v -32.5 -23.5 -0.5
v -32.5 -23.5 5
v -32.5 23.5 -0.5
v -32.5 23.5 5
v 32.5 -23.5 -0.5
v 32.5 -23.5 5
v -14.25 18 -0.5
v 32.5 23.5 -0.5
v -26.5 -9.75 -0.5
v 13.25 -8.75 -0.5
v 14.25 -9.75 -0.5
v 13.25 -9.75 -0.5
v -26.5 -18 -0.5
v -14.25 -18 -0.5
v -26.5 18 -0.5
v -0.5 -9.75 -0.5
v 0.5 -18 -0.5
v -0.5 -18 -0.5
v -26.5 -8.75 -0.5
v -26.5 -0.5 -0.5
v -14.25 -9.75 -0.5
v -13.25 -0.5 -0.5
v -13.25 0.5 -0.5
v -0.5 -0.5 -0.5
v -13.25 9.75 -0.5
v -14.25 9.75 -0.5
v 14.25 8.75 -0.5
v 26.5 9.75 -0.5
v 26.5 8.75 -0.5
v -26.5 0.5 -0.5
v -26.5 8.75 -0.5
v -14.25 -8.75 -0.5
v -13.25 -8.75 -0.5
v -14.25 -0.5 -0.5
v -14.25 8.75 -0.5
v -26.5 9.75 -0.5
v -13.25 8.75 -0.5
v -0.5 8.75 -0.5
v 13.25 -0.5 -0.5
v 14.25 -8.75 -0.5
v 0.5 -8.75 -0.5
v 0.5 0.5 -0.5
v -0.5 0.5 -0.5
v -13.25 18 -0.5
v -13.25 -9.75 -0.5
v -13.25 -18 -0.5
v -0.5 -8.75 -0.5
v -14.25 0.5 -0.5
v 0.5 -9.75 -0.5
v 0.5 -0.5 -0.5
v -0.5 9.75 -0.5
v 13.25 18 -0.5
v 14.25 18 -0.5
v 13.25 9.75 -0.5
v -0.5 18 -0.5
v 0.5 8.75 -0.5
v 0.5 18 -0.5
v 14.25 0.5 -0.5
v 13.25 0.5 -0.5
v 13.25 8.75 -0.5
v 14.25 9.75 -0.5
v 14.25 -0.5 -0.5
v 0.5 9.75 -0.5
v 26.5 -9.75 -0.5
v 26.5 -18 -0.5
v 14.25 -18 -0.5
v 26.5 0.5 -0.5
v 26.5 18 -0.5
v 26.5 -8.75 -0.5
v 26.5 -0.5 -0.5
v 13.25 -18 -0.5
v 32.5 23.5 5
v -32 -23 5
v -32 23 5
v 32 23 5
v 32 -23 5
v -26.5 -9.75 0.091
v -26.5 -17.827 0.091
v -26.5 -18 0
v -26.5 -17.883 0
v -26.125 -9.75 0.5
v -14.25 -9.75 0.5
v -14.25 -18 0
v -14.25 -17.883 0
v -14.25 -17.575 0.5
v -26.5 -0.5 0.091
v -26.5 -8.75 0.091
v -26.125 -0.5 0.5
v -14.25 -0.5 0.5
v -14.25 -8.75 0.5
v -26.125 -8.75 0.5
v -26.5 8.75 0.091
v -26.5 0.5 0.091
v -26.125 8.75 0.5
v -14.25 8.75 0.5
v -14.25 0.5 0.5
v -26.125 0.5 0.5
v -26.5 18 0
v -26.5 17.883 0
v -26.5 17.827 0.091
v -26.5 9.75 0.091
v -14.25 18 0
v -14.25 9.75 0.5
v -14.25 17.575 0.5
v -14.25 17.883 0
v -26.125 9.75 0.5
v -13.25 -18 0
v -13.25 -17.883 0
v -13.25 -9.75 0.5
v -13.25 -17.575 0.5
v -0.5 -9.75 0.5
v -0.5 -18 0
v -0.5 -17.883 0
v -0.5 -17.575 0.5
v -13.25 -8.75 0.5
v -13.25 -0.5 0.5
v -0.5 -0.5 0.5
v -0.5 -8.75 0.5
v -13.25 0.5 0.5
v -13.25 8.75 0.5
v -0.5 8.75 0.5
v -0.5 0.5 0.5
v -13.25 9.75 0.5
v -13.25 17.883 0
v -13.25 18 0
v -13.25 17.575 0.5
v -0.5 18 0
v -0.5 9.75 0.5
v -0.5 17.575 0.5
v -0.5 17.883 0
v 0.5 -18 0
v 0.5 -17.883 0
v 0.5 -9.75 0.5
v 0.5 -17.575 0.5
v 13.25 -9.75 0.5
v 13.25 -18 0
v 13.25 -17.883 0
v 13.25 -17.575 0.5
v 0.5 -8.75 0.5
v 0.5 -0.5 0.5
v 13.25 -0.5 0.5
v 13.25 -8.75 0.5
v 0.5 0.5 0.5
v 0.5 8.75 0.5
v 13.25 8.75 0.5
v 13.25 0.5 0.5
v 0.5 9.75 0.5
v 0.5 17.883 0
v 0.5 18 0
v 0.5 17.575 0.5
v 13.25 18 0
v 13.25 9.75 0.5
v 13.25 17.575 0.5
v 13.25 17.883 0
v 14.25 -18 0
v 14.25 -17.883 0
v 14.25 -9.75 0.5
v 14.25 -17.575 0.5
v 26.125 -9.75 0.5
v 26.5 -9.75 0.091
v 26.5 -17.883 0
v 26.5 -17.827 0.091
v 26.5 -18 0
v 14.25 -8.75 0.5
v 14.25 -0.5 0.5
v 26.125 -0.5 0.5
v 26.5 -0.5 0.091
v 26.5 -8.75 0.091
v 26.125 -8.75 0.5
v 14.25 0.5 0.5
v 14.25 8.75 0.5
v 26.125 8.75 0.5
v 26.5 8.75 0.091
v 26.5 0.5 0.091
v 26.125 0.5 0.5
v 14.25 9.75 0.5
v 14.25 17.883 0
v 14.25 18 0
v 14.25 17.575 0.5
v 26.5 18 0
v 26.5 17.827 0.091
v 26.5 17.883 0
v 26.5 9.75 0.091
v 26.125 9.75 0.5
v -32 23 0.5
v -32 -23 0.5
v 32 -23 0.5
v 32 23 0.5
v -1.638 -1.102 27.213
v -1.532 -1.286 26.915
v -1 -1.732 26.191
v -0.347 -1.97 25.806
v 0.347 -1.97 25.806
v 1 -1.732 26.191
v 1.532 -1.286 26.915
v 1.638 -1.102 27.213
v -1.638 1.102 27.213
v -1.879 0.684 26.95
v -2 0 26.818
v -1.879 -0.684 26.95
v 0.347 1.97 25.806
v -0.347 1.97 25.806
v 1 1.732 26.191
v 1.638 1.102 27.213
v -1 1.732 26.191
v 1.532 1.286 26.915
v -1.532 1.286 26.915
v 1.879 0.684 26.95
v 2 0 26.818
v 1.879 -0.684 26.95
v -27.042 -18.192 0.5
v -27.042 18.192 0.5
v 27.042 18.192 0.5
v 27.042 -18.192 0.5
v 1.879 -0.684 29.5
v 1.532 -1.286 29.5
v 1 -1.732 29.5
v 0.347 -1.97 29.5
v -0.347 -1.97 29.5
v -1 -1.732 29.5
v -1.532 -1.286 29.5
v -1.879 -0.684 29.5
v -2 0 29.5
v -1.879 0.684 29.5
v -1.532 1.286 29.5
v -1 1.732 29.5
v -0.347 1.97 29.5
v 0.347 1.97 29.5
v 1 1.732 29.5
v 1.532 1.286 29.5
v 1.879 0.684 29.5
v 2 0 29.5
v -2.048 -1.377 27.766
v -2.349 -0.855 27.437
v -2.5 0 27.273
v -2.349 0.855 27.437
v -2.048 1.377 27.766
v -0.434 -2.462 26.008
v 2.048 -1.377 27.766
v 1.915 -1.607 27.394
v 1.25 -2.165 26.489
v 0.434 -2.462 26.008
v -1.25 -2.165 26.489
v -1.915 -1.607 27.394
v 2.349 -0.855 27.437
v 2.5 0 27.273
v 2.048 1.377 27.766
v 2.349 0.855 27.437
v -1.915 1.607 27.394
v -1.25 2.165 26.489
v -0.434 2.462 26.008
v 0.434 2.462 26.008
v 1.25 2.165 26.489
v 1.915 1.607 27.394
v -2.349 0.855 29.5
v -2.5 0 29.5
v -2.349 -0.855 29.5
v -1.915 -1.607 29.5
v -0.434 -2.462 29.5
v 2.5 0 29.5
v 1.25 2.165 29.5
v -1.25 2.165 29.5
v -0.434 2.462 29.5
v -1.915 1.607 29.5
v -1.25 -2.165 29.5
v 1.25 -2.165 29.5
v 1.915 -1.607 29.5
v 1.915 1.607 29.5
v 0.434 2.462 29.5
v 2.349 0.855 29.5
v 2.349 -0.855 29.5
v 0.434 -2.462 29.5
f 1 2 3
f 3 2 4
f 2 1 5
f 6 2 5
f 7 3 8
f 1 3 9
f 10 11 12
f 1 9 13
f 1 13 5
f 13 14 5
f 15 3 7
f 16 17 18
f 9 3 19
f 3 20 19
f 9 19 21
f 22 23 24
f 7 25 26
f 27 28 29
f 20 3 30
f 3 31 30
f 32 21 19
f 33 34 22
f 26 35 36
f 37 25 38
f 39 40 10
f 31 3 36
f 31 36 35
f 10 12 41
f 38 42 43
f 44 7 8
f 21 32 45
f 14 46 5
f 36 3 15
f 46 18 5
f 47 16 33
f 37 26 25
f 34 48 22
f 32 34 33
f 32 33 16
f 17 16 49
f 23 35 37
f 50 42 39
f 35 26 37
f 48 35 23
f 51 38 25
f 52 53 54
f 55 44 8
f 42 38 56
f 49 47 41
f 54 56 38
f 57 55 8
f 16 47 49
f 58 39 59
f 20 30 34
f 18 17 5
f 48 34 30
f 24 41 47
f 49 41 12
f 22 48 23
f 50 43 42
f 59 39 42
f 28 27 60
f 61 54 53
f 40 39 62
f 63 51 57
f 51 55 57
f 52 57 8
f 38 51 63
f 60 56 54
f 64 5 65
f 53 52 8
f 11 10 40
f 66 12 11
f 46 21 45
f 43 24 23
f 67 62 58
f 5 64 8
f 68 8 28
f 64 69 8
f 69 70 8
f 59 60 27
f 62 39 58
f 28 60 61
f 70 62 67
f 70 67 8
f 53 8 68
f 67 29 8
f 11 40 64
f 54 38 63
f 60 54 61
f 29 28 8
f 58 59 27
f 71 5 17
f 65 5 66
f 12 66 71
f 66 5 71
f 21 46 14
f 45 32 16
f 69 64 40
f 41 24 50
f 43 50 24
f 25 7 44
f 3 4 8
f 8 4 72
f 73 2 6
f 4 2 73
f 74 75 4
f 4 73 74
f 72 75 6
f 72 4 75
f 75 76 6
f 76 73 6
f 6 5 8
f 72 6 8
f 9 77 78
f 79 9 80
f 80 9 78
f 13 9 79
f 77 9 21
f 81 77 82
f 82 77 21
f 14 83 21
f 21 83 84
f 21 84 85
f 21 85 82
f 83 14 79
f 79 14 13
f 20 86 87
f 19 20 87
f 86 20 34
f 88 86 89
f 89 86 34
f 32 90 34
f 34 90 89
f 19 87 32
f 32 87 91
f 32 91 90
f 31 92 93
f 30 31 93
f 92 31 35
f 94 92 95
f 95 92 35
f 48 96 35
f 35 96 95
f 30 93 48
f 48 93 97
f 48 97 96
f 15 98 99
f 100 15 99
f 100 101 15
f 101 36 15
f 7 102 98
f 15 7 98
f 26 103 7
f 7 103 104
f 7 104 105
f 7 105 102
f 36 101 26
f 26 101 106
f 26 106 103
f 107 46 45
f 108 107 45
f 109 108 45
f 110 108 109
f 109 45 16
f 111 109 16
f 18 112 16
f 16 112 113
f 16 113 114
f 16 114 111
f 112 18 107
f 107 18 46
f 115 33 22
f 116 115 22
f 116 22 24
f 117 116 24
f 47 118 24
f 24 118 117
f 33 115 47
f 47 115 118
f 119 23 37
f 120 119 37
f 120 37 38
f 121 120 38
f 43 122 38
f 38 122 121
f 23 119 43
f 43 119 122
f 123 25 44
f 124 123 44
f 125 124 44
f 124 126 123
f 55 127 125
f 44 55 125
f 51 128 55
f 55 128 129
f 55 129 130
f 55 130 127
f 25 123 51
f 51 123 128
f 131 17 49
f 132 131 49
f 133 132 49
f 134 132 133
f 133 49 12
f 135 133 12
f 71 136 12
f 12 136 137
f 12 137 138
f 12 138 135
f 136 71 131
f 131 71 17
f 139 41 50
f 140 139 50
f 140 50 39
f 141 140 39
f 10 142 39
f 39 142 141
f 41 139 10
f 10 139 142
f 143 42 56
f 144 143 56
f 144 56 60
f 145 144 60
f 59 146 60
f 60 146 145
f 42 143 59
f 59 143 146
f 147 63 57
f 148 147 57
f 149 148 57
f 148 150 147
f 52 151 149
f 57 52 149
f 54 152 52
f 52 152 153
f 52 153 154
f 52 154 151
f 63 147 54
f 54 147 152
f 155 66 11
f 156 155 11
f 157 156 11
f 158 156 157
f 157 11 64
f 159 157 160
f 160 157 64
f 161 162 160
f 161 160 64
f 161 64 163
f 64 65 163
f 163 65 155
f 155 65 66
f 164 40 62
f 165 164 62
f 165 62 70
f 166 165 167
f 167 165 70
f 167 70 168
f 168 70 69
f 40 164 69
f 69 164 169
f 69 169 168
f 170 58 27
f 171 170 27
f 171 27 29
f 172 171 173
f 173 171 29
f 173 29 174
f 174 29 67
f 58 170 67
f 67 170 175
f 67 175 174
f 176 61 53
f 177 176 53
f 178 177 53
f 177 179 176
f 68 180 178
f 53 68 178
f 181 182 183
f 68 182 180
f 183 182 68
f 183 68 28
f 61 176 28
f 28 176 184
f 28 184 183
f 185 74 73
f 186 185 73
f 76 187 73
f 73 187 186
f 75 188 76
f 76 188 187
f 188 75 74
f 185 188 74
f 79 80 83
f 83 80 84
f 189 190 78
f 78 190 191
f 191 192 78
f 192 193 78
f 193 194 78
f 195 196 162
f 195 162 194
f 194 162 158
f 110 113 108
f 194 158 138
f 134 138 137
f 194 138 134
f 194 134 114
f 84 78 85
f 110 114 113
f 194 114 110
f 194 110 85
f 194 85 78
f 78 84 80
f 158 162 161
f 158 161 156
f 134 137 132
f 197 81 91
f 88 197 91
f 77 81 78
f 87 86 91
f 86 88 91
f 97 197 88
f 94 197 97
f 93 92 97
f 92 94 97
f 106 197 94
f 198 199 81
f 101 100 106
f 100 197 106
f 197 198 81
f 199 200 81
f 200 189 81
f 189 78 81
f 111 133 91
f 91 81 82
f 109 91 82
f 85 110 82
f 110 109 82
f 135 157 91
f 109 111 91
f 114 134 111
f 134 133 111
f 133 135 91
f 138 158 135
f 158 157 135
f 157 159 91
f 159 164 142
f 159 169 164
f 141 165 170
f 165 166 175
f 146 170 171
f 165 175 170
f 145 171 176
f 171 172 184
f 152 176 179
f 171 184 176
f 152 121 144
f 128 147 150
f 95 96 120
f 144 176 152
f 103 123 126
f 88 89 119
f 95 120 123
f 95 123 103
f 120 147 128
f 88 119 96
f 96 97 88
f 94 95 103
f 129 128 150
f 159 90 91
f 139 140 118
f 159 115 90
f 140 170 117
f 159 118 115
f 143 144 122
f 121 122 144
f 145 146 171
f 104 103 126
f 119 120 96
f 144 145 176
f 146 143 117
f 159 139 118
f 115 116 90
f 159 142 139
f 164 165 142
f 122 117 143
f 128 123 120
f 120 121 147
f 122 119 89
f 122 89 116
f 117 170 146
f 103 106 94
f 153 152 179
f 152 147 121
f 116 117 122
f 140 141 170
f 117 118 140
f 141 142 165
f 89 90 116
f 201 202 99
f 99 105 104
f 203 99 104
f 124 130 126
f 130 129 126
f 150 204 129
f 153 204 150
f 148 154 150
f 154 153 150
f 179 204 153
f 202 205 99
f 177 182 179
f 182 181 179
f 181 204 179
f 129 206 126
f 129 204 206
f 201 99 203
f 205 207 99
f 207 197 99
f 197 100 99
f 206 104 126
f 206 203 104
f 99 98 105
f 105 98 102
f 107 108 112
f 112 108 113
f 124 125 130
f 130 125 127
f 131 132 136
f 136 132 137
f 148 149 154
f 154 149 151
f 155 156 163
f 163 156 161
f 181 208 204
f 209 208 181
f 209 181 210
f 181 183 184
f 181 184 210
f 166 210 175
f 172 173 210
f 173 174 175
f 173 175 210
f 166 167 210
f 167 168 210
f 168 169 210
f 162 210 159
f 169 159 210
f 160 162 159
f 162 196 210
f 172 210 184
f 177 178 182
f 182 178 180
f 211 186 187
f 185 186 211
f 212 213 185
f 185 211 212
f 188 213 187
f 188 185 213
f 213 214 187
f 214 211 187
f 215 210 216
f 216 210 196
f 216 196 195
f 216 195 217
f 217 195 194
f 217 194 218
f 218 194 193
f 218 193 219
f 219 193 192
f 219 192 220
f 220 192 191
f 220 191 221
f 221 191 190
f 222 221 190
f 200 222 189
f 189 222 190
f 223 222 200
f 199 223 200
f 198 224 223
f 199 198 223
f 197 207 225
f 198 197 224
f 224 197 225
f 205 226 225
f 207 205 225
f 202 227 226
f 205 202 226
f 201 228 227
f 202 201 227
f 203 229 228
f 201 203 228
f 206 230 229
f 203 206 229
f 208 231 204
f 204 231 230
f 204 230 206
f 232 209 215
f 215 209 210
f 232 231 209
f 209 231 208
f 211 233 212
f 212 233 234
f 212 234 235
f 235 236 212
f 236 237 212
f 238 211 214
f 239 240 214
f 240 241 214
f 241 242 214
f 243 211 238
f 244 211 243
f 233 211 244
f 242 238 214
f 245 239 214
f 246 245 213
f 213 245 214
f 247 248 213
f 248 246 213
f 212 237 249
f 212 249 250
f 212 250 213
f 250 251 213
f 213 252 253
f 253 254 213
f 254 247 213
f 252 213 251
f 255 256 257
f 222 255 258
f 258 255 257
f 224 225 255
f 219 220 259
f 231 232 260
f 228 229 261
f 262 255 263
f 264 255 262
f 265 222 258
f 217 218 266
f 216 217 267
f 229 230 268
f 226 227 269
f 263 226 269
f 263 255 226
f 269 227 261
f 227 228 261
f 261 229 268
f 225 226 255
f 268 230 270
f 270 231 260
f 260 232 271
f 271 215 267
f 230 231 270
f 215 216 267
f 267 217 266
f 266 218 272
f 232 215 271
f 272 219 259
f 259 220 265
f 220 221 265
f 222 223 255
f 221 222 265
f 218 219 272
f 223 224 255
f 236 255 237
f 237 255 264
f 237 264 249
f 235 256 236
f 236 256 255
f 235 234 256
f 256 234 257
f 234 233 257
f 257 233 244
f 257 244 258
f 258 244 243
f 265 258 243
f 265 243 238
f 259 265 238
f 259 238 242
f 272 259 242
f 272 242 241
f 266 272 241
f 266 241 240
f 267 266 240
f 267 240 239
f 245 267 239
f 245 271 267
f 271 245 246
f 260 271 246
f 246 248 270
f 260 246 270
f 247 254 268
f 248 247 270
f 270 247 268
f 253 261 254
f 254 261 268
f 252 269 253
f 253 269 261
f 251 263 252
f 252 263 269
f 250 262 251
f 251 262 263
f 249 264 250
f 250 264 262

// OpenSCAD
$fn = 18;

module cone(length, width, height, funnel, edge)
{
	difference() {
		union() {
			polyhedron(
				points = [
					[length/2, width/2, 0],
					[length/2, -width/2, 0],
					[-length/2, -width/2, 0],
					[-length/2, width/2, 0],
					[0, 0, height]
				],
				triangles = [
					[3, 2, 1, 0],
					[1, 4, 0],
					[2, 4, 1],
					[3, 4, 2],
					[0, 4, 3]
				]
			);
			// Funnel part
			color("blue") translate([0, 0, height-funnel/2]) cylinder(r=funnel/2,h=funnel-1,center = true);
		}
		// Remove center of pyramide
		translate([0, 0, -1])
		polyhedron(
			points = [
				[length/2, width/2, 0],
				[length/2, -width/2, 0],
				[-length/2, -width/2, 0],
				[-length/2, width/2, 0],
				[0, 0, height]
			],
			triangles = [
				[3, 2, 1, 0],
				[1, 4, 0],
				[2, 4, 1],
				[3, 4, 2],
				[0, 4, 3]
			]
		);
		// Funnel part hole
		color("red") translate([0, 0, height-funnel/2]) cylinder(r=2,h=funnel+2,center = true);
	}
	// Edge
	difference() {
		echo("lenght:", length+(edge*2));
		echo("width:", width+(edge*2));
		color("green")  translate([0, 0, 0]) cube([length+(edge*2), width+(edge*2), 1], center=true)	;
		color("blue")  translate([0, 0, -0.05]) cube([length-2, width-1, 1.2], center=true)	;
	}
	// Grill
	step1=length/4;
	step2=width/4;
	union() {
		for (i = [-length/2+step1:step1:length/2-step1]) {
			translate([i,0 ,0 ]) cube([1, width, 1], center=true);
		}

		for (j = [-width/2+step2:step2:width/2-step2]) {
		 translate([0,j ,0 ]) rotate([0, 0, 90])  cube([1, length, 1], center=true);
		}
	}
	// Lip
	difference() {
		translate([0, 0, edge/2]) cube([length+edge*2,width+edge*2,edge], center=true);
		translate([0, 0, edge/2]) cube([length+edge*2-1,width+edge*2-1,edge+1], center=true);
	}
}

cone(55,37,30, 5, 5);
